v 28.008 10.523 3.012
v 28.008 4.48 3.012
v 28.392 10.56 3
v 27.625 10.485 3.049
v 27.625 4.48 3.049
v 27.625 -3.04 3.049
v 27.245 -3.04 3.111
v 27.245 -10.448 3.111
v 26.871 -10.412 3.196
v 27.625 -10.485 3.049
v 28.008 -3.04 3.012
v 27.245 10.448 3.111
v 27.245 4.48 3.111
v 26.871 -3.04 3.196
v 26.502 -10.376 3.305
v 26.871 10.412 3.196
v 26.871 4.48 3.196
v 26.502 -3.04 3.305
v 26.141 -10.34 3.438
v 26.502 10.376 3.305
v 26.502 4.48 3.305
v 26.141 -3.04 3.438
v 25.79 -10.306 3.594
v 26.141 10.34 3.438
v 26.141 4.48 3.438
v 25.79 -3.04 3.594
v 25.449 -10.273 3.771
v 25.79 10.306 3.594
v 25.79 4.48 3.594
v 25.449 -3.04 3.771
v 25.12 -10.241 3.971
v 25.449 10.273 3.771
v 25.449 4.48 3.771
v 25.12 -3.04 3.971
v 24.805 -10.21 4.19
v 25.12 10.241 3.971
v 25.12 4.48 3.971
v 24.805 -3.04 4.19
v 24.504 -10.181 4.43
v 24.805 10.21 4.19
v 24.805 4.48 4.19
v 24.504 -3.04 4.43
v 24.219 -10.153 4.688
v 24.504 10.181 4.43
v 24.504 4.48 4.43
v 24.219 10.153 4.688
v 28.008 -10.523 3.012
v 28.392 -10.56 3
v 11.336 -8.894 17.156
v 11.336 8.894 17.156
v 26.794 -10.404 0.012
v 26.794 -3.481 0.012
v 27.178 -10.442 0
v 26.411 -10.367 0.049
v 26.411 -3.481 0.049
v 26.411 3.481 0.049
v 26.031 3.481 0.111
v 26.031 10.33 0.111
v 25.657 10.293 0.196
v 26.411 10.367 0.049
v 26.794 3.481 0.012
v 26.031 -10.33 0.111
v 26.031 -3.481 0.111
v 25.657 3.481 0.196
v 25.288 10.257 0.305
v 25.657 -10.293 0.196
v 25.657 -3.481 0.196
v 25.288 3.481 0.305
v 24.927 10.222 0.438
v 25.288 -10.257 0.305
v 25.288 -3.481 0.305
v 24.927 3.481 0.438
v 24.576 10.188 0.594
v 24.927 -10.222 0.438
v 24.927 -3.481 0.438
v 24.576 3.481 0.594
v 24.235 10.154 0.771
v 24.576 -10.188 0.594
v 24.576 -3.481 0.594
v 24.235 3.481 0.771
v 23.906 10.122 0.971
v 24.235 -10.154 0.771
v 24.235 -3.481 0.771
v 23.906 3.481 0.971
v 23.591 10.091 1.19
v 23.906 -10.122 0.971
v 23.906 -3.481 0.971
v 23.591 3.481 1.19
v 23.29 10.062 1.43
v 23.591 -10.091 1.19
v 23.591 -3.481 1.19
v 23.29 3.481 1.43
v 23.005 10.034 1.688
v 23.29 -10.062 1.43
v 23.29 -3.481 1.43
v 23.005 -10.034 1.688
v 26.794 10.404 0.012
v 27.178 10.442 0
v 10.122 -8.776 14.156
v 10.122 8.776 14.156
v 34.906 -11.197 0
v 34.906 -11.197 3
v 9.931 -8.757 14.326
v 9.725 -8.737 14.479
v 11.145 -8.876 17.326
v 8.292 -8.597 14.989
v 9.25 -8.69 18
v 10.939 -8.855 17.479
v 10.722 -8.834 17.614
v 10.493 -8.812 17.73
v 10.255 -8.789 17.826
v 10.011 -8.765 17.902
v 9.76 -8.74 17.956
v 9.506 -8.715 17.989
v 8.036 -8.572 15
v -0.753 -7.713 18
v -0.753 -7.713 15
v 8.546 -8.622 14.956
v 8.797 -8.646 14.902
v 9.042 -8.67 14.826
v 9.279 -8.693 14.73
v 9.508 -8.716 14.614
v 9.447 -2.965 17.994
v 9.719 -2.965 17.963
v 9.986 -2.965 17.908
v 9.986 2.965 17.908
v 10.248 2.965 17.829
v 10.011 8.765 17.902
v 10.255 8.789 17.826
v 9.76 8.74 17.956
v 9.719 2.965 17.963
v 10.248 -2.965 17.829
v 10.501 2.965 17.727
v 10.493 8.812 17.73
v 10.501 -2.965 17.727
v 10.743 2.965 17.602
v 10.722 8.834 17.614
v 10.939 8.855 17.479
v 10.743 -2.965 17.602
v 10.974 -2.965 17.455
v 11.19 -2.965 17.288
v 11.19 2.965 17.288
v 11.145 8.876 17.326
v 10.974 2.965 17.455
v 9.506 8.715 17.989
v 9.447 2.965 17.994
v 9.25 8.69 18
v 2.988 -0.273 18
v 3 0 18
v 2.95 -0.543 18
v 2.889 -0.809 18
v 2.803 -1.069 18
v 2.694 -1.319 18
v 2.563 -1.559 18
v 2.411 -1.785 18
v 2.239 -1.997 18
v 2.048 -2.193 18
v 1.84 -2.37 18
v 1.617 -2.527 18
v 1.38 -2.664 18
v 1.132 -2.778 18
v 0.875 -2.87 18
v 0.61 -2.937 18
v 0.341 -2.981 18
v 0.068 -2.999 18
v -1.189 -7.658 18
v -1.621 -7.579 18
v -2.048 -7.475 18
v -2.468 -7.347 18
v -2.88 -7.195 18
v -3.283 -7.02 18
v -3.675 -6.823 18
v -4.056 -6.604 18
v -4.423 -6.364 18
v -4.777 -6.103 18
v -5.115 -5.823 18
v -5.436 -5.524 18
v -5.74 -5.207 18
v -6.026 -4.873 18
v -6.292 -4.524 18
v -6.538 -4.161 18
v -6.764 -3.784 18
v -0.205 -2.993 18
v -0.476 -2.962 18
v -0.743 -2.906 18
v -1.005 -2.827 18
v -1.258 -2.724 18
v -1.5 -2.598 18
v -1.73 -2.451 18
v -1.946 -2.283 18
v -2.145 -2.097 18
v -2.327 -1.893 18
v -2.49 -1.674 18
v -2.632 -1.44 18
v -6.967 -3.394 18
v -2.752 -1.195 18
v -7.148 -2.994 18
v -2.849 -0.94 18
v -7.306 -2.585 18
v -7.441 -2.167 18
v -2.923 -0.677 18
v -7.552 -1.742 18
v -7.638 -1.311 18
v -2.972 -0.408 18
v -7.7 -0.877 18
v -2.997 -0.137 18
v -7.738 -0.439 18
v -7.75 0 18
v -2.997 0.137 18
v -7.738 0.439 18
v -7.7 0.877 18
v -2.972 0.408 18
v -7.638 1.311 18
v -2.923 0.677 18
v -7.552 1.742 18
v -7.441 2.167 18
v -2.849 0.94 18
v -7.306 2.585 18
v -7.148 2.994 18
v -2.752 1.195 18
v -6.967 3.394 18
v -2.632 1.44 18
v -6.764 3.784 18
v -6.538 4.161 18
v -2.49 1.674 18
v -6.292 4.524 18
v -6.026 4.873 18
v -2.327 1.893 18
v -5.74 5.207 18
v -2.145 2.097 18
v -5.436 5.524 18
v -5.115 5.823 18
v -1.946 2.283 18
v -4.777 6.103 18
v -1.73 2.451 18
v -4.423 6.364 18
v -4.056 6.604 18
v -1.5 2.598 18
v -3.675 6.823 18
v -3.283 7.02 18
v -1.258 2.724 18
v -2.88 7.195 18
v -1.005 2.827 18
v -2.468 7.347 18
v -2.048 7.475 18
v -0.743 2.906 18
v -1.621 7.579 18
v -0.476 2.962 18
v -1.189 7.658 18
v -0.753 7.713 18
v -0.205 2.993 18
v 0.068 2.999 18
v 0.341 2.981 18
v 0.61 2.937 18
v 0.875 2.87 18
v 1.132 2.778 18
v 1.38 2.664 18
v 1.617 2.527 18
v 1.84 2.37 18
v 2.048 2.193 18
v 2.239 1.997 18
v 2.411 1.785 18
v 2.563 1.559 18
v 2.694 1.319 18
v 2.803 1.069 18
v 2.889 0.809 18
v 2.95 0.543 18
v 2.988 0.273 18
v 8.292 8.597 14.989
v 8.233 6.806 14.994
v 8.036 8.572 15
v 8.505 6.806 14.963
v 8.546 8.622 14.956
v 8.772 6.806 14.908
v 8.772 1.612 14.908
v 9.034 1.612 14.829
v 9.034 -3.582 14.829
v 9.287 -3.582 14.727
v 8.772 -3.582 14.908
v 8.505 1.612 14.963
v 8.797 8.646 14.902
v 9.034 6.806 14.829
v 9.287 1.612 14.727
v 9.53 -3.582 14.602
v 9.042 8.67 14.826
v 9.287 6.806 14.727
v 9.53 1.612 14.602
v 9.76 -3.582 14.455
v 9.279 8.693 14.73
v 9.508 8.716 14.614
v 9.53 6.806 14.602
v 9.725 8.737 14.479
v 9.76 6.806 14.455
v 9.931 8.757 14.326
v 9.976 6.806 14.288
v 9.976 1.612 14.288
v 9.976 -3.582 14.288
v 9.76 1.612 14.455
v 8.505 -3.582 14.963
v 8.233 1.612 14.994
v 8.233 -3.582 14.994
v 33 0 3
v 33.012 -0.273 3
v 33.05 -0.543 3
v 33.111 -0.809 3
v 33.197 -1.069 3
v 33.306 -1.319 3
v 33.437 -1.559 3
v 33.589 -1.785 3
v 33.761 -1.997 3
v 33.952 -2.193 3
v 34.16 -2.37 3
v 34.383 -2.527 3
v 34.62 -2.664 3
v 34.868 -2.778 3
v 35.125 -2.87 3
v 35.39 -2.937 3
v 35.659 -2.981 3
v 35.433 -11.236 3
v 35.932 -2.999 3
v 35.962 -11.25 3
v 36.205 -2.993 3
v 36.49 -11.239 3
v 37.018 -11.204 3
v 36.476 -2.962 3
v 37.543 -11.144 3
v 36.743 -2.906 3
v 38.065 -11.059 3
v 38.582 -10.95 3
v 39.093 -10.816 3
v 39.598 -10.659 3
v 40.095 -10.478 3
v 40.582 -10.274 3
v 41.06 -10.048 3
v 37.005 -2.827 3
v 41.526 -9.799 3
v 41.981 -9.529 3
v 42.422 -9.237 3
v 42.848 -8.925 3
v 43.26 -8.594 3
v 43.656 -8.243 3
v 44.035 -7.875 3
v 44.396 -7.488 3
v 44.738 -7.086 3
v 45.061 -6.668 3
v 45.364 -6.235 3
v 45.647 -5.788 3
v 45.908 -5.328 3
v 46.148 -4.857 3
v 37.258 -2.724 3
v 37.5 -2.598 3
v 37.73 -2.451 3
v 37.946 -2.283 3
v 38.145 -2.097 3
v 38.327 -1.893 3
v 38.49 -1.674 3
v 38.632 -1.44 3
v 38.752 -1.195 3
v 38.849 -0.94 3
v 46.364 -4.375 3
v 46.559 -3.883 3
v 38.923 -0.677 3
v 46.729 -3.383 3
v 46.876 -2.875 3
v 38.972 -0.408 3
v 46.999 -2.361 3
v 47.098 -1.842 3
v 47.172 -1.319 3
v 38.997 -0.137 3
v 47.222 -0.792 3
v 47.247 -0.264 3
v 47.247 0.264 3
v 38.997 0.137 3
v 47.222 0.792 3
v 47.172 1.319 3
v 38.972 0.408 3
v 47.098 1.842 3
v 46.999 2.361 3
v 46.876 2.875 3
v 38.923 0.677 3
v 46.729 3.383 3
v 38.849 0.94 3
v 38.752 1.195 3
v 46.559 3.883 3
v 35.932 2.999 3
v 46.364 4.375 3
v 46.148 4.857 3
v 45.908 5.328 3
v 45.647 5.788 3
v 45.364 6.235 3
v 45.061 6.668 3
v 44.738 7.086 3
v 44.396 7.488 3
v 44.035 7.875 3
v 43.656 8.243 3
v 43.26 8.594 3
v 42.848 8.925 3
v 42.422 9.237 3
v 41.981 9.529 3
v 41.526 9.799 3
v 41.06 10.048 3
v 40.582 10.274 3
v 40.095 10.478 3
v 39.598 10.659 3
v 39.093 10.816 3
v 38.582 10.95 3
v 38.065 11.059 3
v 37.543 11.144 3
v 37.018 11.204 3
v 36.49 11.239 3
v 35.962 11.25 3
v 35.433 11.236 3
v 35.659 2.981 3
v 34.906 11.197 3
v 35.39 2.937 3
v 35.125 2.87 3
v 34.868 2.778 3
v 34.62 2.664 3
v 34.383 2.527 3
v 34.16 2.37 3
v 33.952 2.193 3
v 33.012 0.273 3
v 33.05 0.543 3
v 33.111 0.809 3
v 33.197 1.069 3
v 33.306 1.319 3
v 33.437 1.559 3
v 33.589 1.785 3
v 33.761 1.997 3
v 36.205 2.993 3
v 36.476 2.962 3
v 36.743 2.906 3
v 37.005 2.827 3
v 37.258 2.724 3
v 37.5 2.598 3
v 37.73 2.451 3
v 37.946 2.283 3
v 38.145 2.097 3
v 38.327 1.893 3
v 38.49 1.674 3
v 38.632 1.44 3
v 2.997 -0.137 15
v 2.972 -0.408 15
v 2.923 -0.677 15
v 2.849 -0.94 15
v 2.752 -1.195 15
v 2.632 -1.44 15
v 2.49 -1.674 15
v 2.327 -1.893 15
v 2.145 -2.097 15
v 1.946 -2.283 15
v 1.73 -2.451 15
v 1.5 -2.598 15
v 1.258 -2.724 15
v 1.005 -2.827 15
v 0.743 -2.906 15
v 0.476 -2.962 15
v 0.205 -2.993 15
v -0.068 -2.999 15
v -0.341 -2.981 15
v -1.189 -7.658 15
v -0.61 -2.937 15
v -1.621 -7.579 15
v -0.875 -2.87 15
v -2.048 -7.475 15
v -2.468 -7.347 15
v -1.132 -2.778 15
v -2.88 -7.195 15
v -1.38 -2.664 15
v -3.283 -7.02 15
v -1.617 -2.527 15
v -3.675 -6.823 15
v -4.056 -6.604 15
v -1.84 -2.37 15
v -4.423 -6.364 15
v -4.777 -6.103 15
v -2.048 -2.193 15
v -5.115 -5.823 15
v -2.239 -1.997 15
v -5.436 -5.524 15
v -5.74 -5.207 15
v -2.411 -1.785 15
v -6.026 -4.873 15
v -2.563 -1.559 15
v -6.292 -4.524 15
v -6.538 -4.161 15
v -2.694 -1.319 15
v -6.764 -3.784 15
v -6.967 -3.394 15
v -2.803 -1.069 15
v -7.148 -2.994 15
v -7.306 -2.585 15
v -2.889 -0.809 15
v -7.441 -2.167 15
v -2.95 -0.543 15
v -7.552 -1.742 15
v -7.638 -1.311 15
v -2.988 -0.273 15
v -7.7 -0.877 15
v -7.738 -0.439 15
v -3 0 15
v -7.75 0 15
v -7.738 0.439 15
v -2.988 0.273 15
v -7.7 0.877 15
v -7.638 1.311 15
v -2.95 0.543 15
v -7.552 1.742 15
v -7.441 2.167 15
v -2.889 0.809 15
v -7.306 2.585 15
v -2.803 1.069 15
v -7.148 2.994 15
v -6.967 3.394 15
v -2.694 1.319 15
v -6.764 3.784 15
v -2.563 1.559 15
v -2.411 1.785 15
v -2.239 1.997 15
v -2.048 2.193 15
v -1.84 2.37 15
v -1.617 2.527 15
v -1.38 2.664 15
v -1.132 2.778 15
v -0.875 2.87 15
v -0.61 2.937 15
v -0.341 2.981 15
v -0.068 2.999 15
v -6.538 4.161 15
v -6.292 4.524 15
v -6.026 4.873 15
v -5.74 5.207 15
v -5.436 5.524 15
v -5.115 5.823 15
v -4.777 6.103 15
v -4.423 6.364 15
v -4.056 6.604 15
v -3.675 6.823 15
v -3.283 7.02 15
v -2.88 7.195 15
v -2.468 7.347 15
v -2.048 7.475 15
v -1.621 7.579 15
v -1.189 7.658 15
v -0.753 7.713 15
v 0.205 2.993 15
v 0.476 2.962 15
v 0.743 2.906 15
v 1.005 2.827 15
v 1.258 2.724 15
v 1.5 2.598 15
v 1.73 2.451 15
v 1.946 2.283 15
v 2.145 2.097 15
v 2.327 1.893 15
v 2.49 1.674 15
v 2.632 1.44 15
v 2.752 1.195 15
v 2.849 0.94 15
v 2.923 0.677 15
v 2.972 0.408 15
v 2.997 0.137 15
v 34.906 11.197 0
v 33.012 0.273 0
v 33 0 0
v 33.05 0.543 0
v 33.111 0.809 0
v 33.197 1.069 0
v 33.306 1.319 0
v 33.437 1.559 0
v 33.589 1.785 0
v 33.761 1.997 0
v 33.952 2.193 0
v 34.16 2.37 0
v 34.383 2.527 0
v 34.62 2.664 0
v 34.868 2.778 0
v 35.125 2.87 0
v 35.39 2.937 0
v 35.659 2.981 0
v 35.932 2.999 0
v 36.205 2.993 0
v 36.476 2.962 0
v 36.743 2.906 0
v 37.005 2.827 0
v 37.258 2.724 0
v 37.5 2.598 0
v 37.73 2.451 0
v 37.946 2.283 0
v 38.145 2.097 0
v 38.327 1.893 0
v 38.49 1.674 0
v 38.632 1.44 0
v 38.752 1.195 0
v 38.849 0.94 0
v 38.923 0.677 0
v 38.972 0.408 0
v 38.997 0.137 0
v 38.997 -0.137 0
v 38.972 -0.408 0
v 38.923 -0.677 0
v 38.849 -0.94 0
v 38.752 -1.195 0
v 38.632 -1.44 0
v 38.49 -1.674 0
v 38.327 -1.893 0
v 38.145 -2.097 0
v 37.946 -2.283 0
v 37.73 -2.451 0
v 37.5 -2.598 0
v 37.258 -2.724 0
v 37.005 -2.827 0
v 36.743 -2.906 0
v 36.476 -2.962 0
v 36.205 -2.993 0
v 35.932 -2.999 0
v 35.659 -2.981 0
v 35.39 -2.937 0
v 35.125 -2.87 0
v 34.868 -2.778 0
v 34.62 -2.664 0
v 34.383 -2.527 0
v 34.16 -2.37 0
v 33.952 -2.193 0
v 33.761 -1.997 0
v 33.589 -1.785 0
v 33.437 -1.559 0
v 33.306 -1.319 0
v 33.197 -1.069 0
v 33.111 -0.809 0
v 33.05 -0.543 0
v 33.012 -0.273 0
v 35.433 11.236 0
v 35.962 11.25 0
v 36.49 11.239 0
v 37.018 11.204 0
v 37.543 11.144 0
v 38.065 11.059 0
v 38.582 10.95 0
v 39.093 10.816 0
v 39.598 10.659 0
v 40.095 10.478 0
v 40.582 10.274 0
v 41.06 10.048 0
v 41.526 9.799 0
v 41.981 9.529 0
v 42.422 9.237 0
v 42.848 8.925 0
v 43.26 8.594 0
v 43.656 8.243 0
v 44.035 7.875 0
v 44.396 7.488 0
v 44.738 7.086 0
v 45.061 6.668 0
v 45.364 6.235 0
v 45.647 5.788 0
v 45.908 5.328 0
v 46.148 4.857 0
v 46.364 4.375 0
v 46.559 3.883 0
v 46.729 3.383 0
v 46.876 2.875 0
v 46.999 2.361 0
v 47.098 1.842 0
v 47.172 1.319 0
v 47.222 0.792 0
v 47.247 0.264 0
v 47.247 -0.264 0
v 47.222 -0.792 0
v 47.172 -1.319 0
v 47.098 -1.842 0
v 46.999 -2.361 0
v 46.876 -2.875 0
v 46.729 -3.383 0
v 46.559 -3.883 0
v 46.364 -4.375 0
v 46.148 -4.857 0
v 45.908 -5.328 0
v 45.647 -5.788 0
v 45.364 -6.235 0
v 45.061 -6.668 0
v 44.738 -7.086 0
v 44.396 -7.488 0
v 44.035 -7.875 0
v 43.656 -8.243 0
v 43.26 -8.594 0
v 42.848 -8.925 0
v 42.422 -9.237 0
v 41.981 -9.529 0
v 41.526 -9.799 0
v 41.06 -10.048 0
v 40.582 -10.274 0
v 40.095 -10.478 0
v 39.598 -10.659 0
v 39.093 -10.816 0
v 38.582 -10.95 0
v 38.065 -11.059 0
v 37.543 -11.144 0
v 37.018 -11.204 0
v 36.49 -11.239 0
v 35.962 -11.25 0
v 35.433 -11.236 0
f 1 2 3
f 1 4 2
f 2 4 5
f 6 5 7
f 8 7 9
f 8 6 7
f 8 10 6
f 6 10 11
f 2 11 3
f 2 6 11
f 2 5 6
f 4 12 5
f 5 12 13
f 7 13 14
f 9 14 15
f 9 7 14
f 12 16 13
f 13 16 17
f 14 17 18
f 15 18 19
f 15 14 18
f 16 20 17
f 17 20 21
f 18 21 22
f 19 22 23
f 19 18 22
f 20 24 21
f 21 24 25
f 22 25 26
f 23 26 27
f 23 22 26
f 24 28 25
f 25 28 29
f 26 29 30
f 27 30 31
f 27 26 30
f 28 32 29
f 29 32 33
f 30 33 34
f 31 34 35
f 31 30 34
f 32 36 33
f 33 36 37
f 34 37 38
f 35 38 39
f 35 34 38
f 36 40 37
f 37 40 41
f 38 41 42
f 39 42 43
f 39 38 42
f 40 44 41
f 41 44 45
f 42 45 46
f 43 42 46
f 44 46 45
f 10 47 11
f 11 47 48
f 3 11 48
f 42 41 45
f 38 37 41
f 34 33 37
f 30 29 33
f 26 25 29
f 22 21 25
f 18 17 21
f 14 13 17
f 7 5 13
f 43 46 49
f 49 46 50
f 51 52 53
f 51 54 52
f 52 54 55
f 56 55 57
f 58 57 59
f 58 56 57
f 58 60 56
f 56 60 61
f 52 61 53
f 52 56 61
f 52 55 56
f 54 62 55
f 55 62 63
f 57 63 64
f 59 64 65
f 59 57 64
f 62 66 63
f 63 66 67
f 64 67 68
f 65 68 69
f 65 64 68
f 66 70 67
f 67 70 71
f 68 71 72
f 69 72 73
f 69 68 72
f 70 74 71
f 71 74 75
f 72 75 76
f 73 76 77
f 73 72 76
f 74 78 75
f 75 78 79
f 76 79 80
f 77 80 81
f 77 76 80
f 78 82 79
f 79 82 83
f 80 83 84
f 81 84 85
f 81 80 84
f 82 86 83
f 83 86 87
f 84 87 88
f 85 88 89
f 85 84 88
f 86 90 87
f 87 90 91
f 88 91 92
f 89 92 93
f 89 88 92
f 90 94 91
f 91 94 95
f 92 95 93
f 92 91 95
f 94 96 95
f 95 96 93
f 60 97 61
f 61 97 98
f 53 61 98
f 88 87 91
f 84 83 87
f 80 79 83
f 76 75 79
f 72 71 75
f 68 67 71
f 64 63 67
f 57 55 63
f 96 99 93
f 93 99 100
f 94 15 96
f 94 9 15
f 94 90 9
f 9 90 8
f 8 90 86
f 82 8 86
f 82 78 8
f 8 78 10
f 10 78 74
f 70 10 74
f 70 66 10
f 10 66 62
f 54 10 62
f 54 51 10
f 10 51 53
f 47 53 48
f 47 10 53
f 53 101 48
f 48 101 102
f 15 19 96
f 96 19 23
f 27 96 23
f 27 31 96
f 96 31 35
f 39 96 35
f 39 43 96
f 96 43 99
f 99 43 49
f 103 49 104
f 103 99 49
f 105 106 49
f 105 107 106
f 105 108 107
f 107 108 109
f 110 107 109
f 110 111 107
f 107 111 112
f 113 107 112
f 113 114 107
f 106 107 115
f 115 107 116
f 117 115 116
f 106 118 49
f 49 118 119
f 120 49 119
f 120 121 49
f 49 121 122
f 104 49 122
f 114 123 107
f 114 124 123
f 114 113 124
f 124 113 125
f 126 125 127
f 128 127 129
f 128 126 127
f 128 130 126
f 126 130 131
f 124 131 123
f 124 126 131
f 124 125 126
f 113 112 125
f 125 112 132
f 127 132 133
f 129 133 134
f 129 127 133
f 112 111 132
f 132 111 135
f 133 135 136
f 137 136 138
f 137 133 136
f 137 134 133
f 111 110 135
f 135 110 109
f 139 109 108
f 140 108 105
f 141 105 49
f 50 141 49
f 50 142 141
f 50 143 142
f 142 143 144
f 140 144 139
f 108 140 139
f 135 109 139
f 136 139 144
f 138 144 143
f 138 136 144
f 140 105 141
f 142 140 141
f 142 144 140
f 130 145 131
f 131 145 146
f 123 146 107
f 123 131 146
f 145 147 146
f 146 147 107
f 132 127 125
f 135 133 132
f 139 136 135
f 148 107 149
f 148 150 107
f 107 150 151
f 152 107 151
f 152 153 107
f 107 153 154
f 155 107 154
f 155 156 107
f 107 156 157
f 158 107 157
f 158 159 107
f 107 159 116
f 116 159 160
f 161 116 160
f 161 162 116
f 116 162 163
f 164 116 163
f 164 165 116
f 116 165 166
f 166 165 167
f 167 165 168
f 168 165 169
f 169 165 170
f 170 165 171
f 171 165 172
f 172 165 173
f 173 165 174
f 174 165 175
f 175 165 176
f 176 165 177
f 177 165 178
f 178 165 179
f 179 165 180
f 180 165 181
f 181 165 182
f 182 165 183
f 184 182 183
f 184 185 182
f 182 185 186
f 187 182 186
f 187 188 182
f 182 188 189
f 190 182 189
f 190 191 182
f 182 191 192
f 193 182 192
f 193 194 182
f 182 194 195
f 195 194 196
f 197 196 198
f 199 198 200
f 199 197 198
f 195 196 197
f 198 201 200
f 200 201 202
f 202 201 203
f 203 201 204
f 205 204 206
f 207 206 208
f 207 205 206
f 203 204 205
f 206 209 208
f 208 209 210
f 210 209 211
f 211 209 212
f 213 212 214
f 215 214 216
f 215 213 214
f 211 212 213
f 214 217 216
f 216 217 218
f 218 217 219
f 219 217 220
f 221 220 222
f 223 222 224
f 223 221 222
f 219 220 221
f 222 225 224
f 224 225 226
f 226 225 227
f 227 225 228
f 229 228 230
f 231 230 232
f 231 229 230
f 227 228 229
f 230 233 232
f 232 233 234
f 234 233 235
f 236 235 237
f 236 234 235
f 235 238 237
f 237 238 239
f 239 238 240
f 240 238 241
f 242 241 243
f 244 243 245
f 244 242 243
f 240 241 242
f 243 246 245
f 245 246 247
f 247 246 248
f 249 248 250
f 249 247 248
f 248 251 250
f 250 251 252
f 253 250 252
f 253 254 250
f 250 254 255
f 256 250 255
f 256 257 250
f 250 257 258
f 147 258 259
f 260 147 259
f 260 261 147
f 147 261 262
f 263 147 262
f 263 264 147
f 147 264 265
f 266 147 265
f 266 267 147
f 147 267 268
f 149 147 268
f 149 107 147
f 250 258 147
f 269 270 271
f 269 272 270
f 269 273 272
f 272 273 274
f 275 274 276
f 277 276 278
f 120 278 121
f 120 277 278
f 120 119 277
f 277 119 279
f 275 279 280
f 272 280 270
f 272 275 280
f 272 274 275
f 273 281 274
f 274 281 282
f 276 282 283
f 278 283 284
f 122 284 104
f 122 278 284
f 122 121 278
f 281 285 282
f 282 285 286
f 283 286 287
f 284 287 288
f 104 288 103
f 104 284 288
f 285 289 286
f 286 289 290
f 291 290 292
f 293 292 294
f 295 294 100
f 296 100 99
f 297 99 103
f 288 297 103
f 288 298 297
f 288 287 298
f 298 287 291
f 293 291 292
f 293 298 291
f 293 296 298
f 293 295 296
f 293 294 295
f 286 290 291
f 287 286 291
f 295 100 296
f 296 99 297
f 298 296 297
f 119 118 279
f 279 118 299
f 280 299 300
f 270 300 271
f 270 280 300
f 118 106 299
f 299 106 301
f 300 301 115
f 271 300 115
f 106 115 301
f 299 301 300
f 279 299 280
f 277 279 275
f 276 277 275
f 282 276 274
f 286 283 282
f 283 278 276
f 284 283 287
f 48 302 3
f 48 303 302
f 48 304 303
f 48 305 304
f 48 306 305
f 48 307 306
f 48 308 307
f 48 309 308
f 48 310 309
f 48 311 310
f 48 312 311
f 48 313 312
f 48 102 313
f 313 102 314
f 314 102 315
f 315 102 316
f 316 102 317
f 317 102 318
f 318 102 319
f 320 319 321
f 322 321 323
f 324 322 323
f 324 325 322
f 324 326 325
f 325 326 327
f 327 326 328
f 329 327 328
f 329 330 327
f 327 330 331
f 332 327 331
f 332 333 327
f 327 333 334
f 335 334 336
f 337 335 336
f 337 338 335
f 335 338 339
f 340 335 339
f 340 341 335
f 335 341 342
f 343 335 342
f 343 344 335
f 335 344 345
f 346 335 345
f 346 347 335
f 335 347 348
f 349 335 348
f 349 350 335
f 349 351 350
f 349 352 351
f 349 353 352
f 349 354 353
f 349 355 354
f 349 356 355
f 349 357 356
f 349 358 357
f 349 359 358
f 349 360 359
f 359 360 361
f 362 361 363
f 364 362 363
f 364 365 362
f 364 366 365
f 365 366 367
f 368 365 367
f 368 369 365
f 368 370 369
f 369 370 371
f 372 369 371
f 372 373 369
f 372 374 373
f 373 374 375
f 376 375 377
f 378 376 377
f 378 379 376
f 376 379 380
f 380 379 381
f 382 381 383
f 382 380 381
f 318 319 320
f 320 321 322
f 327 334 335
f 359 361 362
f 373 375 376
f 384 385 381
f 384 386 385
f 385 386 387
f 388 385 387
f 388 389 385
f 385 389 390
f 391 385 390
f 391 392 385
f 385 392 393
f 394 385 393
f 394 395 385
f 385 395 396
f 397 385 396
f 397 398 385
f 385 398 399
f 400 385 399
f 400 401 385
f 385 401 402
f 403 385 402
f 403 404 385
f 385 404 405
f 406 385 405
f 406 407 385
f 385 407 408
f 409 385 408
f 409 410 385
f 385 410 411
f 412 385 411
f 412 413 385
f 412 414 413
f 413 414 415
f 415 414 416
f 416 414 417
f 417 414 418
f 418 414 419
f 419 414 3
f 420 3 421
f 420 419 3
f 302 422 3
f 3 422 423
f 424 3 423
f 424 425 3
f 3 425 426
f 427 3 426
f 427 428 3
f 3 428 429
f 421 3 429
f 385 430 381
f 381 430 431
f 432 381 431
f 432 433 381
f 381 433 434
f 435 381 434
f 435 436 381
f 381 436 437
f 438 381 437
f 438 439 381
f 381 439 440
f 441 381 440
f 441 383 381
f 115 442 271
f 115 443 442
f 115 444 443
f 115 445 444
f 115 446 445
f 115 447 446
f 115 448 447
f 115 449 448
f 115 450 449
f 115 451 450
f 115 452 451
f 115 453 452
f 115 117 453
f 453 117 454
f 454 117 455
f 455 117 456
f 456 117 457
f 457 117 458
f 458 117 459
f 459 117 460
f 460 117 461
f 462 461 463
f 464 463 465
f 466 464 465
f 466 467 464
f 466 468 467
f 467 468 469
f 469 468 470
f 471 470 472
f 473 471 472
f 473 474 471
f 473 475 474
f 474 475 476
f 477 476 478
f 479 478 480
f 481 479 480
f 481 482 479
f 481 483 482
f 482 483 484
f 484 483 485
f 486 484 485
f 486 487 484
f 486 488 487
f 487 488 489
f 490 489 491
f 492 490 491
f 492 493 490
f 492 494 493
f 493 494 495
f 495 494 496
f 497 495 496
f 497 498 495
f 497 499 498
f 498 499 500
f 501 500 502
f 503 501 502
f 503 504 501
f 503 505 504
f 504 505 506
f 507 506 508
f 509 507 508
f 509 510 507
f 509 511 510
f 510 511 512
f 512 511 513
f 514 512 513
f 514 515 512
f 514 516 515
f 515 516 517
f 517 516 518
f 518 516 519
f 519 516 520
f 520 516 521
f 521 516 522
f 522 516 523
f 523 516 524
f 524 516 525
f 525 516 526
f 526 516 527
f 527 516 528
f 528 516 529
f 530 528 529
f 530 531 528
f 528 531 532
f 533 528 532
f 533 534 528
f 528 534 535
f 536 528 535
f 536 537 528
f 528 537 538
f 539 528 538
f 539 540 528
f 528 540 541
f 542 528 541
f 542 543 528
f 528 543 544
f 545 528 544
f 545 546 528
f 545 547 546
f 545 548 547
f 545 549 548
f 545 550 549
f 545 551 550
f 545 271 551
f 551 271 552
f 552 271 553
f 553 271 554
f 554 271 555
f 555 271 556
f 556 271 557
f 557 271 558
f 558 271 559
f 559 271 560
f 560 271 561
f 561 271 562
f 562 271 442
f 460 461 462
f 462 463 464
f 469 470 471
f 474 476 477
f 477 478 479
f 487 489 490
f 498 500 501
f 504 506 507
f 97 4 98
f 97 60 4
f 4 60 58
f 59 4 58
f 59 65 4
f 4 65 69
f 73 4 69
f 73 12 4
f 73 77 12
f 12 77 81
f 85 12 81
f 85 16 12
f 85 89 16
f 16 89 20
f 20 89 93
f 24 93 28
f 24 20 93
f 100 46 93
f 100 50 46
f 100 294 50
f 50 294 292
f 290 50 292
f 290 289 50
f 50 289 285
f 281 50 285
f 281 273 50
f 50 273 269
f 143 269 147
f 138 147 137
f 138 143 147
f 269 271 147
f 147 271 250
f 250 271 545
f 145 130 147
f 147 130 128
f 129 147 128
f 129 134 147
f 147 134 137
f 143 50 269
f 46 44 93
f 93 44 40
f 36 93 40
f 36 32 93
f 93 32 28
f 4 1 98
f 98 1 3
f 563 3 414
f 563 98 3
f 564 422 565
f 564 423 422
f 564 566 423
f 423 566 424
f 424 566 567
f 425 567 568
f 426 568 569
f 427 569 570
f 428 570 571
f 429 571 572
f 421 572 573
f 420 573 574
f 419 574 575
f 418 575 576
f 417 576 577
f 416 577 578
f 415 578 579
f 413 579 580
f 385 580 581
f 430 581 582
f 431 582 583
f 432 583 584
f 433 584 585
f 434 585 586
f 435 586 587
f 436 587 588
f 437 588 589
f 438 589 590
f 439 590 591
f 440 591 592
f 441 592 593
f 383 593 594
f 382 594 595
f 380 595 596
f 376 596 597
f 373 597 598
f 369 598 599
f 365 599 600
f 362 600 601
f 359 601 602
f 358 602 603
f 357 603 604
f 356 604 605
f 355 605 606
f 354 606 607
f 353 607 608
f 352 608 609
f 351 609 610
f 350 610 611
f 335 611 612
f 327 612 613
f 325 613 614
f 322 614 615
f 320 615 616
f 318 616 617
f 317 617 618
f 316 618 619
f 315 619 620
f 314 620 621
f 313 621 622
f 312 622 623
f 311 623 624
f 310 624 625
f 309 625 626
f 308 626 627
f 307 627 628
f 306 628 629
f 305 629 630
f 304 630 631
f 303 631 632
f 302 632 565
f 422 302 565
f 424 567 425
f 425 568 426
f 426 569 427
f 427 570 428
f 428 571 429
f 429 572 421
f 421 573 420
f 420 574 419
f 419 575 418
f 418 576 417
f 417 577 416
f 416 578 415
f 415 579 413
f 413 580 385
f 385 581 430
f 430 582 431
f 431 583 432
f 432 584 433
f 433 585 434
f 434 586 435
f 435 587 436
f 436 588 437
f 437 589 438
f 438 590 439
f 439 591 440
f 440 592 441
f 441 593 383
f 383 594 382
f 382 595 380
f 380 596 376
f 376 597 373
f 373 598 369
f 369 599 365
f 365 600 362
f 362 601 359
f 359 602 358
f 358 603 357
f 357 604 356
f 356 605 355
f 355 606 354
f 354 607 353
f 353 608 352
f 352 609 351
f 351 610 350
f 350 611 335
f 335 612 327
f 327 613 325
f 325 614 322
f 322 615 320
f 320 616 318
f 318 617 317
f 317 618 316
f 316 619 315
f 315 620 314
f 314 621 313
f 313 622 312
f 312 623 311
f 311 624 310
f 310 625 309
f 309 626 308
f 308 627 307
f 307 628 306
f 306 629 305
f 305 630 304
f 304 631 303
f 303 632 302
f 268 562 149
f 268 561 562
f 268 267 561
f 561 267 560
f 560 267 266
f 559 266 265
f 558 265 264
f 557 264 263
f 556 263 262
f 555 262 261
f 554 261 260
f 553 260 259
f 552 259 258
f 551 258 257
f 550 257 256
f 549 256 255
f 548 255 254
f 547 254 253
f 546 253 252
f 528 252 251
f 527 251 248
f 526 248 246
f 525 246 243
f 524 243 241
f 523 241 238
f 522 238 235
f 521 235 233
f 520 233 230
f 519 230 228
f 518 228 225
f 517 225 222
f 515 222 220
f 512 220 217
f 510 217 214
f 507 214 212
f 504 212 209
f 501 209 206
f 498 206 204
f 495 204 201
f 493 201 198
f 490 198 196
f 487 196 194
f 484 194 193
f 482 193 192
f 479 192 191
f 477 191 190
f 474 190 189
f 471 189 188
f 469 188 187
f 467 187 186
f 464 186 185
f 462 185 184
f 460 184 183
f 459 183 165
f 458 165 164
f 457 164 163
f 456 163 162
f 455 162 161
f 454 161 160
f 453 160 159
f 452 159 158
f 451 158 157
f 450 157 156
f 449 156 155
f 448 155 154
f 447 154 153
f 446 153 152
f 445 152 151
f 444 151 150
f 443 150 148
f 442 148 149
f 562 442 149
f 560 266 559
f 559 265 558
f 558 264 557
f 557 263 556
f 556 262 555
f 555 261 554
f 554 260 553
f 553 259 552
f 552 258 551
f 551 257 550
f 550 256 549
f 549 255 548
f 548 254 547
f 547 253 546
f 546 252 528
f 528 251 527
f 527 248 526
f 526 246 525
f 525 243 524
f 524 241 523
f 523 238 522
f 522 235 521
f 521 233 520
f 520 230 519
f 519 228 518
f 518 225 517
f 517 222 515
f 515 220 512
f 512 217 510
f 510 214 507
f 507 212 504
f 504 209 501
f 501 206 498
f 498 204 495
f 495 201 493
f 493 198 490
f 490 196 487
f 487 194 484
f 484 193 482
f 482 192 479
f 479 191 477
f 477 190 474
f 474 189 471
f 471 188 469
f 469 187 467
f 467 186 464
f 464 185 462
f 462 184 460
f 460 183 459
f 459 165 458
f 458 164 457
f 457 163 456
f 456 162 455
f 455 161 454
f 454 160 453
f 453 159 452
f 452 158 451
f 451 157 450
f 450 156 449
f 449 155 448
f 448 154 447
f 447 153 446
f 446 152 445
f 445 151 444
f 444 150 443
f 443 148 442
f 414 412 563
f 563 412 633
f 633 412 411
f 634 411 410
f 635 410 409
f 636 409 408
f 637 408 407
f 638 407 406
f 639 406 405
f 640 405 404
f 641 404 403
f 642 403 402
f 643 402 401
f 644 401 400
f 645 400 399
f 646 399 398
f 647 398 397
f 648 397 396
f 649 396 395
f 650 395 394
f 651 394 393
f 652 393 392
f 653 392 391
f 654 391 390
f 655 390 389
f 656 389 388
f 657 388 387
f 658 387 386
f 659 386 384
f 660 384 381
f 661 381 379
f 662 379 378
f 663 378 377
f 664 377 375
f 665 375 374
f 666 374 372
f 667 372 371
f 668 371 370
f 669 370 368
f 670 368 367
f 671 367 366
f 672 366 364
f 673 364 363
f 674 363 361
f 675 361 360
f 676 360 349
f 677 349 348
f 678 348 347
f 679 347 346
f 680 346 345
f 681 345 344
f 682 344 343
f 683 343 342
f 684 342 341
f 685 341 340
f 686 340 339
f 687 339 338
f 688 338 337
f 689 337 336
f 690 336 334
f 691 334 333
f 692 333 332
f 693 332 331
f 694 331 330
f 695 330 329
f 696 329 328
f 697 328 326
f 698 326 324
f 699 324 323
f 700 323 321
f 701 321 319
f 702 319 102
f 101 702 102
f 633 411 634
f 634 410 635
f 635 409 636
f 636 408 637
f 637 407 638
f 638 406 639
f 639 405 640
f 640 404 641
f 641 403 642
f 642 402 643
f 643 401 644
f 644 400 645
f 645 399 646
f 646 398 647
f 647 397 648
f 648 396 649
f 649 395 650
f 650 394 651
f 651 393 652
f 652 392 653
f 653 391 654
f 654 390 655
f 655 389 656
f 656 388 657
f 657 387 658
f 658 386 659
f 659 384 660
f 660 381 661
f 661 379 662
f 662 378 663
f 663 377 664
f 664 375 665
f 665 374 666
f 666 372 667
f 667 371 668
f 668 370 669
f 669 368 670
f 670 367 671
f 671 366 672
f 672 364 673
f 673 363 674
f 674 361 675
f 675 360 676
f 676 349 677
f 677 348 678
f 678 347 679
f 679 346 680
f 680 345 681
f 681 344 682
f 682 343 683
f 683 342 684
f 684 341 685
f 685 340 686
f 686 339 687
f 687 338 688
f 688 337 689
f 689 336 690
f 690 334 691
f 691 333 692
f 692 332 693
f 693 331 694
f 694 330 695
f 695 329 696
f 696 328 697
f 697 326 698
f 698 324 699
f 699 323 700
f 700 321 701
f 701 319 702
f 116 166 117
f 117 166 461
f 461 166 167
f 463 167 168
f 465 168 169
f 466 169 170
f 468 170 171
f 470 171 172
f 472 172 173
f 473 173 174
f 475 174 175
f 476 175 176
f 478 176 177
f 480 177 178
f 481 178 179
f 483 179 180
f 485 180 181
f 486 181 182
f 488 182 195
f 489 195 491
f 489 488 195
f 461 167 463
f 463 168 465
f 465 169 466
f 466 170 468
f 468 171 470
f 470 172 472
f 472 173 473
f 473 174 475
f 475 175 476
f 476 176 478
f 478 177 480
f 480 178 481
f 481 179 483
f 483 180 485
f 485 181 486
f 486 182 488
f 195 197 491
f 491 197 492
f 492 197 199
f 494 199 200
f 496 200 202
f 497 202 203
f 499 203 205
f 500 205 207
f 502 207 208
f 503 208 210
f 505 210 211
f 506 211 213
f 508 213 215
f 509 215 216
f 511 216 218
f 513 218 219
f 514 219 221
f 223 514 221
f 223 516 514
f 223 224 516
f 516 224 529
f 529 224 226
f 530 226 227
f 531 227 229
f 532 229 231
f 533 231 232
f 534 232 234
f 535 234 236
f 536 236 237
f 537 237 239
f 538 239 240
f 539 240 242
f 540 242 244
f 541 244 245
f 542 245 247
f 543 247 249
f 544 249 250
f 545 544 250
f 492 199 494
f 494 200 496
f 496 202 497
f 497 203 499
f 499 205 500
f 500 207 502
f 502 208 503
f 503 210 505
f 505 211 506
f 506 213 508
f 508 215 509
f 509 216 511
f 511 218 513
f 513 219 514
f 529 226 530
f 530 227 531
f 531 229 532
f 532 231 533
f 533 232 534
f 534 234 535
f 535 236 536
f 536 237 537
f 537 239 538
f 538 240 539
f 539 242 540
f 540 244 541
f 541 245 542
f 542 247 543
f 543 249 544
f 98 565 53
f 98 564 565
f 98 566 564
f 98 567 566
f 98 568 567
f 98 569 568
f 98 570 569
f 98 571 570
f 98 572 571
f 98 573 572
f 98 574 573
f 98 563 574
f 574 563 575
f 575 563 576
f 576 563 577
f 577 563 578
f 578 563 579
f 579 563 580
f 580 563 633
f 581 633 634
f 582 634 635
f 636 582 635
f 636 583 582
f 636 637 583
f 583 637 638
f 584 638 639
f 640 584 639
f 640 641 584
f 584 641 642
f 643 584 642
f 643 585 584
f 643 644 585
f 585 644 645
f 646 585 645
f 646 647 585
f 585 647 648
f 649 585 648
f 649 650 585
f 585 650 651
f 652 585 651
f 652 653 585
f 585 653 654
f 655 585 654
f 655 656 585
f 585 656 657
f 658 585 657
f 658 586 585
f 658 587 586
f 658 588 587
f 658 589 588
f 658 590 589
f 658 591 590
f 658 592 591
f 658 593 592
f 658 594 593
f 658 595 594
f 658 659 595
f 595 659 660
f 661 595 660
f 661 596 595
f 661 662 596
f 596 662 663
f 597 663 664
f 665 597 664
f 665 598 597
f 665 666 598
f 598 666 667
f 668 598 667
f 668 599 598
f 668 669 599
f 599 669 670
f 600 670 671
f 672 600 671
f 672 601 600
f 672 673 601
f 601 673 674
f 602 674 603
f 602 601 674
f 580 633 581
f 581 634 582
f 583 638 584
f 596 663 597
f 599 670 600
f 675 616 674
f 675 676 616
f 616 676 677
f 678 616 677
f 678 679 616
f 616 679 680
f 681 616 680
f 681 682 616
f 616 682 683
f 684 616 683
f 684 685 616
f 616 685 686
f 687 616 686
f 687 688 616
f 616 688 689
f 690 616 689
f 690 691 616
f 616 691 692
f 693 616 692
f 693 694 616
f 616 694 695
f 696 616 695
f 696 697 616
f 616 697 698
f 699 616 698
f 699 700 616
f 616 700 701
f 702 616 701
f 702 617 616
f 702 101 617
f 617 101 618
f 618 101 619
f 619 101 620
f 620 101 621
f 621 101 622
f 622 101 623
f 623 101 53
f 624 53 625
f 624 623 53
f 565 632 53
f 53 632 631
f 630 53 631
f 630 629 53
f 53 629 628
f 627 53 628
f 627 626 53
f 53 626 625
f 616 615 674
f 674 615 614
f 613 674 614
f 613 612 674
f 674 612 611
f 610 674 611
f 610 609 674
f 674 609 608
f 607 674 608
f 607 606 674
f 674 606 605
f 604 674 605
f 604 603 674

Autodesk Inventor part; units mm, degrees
ref_plane "YZ Plane" through (0, 0, 0) normal (1, 0, 0) x (0, 1, 0)
ref_plane "XY Plane" through (0, 0, 0) normal (0, 0, 1) x (1, 0, 0)
sketch "Body" plane through (0, 0, 0) normal (0, 0, 1) x (1, 0, 0)
  circle A0 centre (0, 0) radius 7.75
  line L0 (0, 0) -> (36, 0) construction
  circle A1 centre (36, 0) radius 11.25
  line L1 (-0.7535, 7.7133) -> (34.9062, 11.1967)
  line L2 (-0.7535, -7.7133) -> (34.9062, -11.1967)
  dimension "SmallDiameter" = 15.5
  dimension "d1" = 36
  dimension "LargeDiameter" = 22.5
extrude "BodyFeature" add sketch "Body" along normal blind 18
sketch "Sketch2" plane through (0, 0, 18) normal (0, 0, 1) x (1, 0, 0)
  arc A0 (-0.7535, 7.7133) -> (-0.7535, -7.7133) centre (0, 0) ccw construction
  line L0 (-0.7535, -7.7133) -> (34.9062, -11.1967) construction
  arc A1 (34.9062, -11.1967) -> (34.9062, 11.1967) centre (36, 0) ccw construction
  line L1 (34.9062, 11.1967) -> (-0.7535, 7.7133) construction
hole "BodyHolesFeature" at (0, 0, 18) at (36, 0, 18) direction (0, 0, -1) diameter 6 end through all
ref_plane "SideProfilePlane" through (0, 12, 0) normal (0, 1, 0) x (-1, 0, 0)
sketch "SideProfile" plane through (0, 12, 0) normal (0, 1, 0) x (-1, 0, 0)
  line L0 (7.75, 18) -> (0.7535, 18) construction
  line L1 (7.75, 18) -> (7.75, 15)
  line L2 (7.75, 15) -> (-9.25, 15)
  line L3 (-9.25, 15) -> (-24.75, 0)
  line L4 (-24.75, 0) -> (-47.25, 0)
  line L5 (-34.9062, 0) -> (0.7535, 0) construction
  line L6 (-47.25, 0) -> (-47.25, 18) construction
  line L7 (-34.9062, 18) -> (-47.25, 18) construction
  line L8 (-34.9062, 18) -> (0.7535, 18) construction
  line L9 (-25.9639, 3) -> (-10.4639, 18)
  line L10 (-47.25, 3) -> (-25.9639, 3)
  line L11 (-47.25, 0) -> (-47.25, 3)
  line L12 (7.75, 18) -> (-10.4639, 18)
  dimension "Thickness" = 3
  dimension "d15" = 3
  dimension "d16" = 3
  dimension "d17" = 17
  dimension "d18" = 22.5
extrude "SideProfileFeature" cut sketch "SideProfile" against normal through all keep common part
fillet "SmallFilletFeature" radius 3 2 edges at (9.25, 0, 15) (10.4639, 0, 18)
fillet "LargeFilletFeature" radius 6 2 edges at (24.75, 0, 0) (25.9639, 0, 3)
equation "\"d15\" = Thickness"
equation "\"d16\" = Thickness"
equation "\"d18\" = LargeDiameter"
properties part number "BackConnector"
